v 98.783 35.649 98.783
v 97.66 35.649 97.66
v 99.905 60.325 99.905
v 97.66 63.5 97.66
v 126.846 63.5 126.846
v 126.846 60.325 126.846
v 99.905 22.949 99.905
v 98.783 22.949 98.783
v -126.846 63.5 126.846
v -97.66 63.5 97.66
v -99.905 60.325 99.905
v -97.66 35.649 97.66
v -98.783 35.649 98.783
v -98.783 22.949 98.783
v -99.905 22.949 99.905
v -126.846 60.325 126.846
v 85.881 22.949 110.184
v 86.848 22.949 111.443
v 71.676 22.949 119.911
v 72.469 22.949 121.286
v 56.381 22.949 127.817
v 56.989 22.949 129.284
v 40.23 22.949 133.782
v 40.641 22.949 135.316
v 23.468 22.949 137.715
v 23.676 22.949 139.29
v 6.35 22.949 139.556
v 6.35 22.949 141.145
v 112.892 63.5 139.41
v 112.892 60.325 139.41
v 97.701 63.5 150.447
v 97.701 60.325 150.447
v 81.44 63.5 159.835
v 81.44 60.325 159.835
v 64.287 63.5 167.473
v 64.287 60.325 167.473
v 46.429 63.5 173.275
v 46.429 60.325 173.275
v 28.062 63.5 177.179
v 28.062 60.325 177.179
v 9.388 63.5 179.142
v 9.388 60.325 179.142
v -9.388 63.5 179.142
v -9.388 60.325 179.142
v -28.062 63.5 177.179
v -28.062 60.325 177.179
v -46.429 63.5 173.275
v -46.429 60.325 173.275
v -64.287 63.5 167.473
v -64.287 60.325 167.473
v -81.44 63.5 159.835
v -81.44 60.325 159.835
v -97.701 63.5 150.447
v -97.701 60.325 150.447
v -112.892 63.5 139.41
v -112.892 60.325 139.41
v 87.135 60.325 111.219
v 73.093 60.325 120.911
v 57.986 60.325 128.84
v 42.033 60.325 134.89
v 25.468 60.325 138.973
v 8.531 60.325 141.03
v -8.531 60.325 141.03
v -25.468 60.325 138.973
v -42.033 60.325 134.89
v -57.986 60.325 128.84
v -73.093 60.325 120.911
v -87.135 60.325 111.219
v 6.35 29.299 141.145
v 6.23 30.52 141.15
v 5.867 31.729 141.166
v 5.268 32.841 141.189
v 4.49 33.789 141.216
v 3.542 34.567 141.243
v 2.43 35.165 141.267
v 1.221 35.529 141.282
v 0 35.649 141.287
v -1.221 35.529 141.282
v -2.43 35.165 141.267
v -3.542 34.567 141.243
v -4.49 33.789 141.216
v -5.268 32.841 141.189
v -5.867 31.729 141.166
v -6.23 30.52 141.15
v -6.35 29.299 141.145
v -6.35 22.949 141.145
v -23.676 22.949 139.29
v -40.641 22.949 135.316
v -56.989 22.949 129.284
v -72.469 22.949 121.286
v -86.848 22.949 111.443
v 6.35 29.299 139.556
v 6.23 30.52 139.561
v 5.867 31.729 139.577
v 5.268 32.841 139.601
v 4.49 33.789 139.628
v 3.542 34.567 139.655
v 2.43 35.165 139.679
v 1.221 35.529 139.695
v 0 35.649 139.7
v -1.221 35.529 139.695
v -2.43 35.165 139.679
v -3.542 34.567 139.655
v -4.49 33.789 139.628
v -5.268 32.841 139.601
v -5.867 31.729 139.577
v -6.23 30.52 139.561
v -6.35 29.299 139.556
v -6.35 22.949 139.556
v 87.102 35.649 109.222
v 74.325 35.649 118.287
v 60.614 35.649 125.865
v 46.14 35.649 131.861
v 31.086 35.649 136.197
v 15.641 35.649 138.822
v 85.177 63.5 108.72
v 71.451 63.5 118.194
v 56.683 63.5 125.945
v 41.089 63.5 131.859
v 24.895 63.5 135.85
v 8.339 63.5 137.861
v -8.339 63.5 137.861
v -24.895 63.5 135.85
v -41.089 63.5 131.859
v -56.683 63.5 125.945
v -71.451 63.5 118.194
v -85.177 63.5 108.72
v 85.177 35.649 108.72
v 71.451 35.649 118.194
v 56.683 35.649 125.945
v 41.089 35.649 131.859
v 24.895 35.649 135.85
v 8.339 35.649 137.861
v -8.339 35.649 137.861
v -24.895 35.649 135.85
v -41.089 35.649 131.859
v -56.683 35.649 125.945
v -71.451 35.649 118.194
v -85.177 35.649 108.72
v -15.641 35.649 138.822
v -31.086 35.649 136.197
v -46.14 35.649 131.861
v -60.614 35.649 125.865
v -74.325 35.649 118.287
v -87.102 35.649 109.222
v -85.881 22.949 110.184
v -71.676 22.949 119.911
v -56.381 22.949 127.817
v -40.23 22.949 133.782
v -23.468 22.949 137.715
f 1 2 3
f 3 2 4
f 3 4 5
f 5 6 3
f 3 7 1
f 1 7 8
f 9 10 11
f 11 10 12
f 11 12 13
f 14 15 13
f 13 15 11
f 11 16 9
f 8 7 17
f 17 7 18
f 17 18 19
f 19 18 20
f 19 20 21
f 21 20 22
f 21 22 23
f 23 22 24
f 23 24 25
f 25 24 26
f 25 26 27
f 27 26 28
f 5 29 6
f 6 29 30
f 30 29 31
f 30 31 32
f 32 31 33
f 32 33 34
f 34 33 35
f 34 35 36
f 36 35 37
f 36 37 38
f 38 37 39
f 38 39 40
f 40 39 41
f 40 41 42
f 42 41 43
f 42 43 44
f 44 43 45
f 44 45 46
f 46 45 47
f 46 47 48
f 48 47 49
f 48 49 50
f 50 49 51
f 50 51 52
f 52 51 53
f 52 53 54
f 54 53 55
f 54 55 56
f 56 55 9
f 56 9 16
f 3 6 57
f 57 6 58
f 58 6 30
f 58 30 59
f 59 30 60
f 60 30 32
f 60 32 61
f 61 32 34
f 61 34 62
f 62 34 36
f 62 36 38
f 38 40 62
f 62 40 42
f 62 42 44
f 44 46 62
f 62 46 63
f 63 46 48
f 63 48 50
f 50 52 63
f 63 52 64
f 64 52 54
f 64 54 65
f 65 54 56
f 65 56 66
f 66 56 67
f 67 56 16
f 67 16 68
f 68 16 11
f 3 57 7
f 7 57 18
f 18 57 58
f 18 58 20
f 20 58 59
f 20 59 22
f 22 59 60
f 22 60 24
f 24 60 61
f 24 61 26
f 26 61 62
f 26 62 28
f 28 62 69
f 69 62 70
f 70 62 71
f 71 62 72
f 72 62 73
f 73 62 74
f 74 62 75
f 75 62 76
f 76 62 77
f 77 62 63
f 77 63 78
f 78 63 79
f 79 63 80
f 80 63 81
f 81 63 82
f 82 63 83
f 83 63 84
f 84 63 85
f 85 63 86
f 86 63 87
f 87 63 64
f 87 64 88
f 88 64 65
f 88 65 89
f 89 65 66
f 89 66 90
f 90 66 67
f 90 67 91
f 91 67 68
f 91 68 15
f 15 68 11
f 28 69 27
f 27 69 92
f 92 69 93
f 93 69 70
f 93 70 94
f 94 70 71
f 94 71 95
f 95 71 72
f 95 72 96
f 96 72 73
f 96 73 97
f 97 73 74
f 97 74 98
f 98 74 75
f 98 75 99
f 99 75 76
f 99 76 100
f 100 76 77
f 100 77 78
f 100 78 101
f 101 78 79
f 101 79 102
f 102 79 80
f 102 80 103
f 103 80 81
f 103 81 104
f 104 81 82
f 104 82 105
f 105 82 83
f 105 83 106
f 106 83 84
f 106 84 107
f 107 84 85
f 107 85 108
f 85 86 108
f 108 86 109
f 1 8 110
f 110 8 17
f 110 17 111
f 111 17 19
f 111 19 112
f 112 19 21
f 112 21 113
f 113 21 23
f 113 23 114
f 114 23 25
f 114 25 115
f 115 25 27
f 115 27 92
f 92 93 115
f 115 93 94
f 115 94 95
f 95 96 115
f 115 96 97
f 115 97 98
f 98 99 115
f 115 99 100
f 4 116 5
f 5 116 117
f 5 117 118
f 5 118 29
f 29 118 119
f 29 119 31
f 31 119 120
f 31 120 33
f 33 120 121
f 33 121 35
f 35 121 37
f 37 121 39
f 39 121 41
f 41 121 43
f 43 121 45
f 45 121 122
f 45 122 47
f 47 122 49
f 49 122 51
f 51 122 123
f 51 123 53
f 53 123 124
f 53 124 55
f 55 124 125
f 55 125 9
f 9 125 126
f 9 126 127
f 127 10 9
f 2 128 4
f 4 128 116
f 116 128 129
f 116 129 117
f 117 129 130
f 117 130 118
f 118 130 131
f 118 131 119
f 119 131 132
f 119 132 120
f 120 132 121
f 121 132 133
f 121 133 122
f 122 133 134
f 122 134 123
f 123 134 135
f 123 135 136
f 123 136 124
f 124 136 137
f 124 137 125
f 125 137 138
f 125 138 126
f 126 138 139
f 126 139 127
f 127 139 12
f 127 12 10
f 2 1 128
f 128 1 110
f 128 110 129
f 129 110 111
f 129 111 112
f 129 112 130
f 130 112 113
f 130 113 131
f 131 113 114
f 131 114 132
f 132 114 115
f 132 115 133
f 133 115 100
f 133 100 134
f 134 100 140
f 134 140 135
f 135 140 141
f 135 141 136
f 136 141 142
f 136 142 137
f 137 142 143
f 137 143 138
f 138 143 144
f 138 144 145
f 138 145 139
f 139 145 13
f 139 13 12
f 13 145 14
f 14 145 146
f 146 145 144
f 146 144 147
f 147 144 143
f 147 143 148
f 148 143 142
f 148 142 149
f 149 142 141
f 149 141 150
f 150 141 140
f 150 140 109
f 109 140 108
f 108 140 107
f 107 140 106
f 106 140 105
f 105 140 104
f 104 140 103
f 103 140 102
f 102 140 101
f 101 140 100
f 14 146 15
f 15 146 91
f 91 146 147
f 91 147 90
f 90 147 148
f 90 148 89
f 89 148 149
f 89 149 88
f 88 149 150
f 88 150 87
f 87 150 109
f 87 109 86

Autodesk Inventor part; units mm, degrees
ref_plane "YZ Plane" through (0, 0, 0) normal (1, 0, 0) x (0, 1, 0)
ref_plane "XZ Plane" through (0, 0, 0) normal (0, 1, 0) x (-1, 0, 0)
ref_plane "XY Plane" through (0, 0, 0) normal (0, 0, 1) x (1, 0, 0)
sketch "Sketch1" plane through (0, 0, 0) normal (1, 0, 0) x (0, 1, 0)
  line L0 (0, 0) -> (50.8, 0)
  line L1 (0, 138.1125) -> (26.719, 138.1125)
  line L2 (0, 138.1125) -> (0, 169.8625)
  line L3 (0, 169.8625) -> (3.175, 169.8625)
  line L4 (3.175, 169.8625) -> (3.175, 141.2875)
  line L5 (22.9489, 141.2875) -> (60.325, 141.2875)
  line L6 (60.325, 141.2875) -> (60.325, 179.3875)
  line L7 (60.325, 179.3875) -> (63.5, 179.3875)
  line L8 (63.5, 179.3875) -> (63.5, 138.1125)
  line L9 (63.5, 138.1125) -> (35.6489, 138.1125)
  line L10 (29.2989, 139.7) -> (22.9489, 139.7)
  line L11 (22.9489, 139.7) -> (22.9489, 141.2875)
  line L12 (29.2989, 139.7) -> (35.6489, 139.7)
  line L13 (35.6489, 139.7) -> (35.6489, 138.1125)
  line L14 (29.2989, 164.2178) -> (29.2989, 141.2875)
  point P0 (62.1333, 179.3875)
  dimension "d0" = 50.8
  dimension "d1" = 138.1125
  dimension "d2" = 31.75
  dimension "d3" = 3.175
  dimension "d4" = 3.175
  dimension "d5" = 57.15
  dimension "d6" = 38.1
  dimension "d7" = 3.175
  dimension "d13" = 26.1239
  dimension "d14" = 1.5875
  dimension "d15" = 6.35
  dimension "d16" = 6.35
revolve "Revolution1" add sketch "Sketch1" angle 360 about axis through (0, 0, 0) along (0, 1, 0)
ref_plane "Work Plane1" through (0, 62.1333, 179.3875) normal (0, 0, 1) x (1, 0, 0)
sketch "Sketch2" plane through (0, 62.1333, 179.3875) normal (0, 0, 1) x (1, 0, 0)
  arc A0 (6.35, -32.8344) -> (-6.35, -32.8344) centre (0, -32.8344) ccw
  line L0 (169.8625, -58.9583) -> (-169.8625, -58.9583) projected
  line L1 (-6.35, -32.8344) -> (-6.35, -39.1844)
  line L2 (141.2875, -39.1844) -> (-141.2875, -39.1844) projected
  line L3 (6.35, -32.8344) -> (6.35, -39.1844)
  line L4 (-6.35, -39.1844) -> (6.35, -39.1844)
  point P0 (0, -62.1333)
  dimension "d9" = 12.7
  dimension "d10" = 26.1239
extrude "Extrusion1" cut sketch "Sketch2" against normal through all
sketch "Sketch3" plane through (0, 63.5, 0) normal (0, 1, 0) x (1, 0, 0)
  line L0 (0, 0) -> (-271.4312, -271.4312)
  line L1 (0, 0) -> (383.8617, 0) construction
  line L2 (-271.4312, -271.4312) -> (-271.4312, 238.0261)
  line L3 (-271.4312, 238.0261) -> (250.2845, 238.0261)
  line L4 (0, 0) -> (271.4312, -271.4312)
  line L5 (0, 0) -> (383.8617, 0) construction
  line L6 (271.4312, -271.4312) -> (250.2845, 238.0261)
  dimension "d17" = 135
  dimension "d18" = 45
extrude "Extrusion2" cut sketch "Sketch3" against normal through all
properties part number "Layer2_Top_Quarter"
